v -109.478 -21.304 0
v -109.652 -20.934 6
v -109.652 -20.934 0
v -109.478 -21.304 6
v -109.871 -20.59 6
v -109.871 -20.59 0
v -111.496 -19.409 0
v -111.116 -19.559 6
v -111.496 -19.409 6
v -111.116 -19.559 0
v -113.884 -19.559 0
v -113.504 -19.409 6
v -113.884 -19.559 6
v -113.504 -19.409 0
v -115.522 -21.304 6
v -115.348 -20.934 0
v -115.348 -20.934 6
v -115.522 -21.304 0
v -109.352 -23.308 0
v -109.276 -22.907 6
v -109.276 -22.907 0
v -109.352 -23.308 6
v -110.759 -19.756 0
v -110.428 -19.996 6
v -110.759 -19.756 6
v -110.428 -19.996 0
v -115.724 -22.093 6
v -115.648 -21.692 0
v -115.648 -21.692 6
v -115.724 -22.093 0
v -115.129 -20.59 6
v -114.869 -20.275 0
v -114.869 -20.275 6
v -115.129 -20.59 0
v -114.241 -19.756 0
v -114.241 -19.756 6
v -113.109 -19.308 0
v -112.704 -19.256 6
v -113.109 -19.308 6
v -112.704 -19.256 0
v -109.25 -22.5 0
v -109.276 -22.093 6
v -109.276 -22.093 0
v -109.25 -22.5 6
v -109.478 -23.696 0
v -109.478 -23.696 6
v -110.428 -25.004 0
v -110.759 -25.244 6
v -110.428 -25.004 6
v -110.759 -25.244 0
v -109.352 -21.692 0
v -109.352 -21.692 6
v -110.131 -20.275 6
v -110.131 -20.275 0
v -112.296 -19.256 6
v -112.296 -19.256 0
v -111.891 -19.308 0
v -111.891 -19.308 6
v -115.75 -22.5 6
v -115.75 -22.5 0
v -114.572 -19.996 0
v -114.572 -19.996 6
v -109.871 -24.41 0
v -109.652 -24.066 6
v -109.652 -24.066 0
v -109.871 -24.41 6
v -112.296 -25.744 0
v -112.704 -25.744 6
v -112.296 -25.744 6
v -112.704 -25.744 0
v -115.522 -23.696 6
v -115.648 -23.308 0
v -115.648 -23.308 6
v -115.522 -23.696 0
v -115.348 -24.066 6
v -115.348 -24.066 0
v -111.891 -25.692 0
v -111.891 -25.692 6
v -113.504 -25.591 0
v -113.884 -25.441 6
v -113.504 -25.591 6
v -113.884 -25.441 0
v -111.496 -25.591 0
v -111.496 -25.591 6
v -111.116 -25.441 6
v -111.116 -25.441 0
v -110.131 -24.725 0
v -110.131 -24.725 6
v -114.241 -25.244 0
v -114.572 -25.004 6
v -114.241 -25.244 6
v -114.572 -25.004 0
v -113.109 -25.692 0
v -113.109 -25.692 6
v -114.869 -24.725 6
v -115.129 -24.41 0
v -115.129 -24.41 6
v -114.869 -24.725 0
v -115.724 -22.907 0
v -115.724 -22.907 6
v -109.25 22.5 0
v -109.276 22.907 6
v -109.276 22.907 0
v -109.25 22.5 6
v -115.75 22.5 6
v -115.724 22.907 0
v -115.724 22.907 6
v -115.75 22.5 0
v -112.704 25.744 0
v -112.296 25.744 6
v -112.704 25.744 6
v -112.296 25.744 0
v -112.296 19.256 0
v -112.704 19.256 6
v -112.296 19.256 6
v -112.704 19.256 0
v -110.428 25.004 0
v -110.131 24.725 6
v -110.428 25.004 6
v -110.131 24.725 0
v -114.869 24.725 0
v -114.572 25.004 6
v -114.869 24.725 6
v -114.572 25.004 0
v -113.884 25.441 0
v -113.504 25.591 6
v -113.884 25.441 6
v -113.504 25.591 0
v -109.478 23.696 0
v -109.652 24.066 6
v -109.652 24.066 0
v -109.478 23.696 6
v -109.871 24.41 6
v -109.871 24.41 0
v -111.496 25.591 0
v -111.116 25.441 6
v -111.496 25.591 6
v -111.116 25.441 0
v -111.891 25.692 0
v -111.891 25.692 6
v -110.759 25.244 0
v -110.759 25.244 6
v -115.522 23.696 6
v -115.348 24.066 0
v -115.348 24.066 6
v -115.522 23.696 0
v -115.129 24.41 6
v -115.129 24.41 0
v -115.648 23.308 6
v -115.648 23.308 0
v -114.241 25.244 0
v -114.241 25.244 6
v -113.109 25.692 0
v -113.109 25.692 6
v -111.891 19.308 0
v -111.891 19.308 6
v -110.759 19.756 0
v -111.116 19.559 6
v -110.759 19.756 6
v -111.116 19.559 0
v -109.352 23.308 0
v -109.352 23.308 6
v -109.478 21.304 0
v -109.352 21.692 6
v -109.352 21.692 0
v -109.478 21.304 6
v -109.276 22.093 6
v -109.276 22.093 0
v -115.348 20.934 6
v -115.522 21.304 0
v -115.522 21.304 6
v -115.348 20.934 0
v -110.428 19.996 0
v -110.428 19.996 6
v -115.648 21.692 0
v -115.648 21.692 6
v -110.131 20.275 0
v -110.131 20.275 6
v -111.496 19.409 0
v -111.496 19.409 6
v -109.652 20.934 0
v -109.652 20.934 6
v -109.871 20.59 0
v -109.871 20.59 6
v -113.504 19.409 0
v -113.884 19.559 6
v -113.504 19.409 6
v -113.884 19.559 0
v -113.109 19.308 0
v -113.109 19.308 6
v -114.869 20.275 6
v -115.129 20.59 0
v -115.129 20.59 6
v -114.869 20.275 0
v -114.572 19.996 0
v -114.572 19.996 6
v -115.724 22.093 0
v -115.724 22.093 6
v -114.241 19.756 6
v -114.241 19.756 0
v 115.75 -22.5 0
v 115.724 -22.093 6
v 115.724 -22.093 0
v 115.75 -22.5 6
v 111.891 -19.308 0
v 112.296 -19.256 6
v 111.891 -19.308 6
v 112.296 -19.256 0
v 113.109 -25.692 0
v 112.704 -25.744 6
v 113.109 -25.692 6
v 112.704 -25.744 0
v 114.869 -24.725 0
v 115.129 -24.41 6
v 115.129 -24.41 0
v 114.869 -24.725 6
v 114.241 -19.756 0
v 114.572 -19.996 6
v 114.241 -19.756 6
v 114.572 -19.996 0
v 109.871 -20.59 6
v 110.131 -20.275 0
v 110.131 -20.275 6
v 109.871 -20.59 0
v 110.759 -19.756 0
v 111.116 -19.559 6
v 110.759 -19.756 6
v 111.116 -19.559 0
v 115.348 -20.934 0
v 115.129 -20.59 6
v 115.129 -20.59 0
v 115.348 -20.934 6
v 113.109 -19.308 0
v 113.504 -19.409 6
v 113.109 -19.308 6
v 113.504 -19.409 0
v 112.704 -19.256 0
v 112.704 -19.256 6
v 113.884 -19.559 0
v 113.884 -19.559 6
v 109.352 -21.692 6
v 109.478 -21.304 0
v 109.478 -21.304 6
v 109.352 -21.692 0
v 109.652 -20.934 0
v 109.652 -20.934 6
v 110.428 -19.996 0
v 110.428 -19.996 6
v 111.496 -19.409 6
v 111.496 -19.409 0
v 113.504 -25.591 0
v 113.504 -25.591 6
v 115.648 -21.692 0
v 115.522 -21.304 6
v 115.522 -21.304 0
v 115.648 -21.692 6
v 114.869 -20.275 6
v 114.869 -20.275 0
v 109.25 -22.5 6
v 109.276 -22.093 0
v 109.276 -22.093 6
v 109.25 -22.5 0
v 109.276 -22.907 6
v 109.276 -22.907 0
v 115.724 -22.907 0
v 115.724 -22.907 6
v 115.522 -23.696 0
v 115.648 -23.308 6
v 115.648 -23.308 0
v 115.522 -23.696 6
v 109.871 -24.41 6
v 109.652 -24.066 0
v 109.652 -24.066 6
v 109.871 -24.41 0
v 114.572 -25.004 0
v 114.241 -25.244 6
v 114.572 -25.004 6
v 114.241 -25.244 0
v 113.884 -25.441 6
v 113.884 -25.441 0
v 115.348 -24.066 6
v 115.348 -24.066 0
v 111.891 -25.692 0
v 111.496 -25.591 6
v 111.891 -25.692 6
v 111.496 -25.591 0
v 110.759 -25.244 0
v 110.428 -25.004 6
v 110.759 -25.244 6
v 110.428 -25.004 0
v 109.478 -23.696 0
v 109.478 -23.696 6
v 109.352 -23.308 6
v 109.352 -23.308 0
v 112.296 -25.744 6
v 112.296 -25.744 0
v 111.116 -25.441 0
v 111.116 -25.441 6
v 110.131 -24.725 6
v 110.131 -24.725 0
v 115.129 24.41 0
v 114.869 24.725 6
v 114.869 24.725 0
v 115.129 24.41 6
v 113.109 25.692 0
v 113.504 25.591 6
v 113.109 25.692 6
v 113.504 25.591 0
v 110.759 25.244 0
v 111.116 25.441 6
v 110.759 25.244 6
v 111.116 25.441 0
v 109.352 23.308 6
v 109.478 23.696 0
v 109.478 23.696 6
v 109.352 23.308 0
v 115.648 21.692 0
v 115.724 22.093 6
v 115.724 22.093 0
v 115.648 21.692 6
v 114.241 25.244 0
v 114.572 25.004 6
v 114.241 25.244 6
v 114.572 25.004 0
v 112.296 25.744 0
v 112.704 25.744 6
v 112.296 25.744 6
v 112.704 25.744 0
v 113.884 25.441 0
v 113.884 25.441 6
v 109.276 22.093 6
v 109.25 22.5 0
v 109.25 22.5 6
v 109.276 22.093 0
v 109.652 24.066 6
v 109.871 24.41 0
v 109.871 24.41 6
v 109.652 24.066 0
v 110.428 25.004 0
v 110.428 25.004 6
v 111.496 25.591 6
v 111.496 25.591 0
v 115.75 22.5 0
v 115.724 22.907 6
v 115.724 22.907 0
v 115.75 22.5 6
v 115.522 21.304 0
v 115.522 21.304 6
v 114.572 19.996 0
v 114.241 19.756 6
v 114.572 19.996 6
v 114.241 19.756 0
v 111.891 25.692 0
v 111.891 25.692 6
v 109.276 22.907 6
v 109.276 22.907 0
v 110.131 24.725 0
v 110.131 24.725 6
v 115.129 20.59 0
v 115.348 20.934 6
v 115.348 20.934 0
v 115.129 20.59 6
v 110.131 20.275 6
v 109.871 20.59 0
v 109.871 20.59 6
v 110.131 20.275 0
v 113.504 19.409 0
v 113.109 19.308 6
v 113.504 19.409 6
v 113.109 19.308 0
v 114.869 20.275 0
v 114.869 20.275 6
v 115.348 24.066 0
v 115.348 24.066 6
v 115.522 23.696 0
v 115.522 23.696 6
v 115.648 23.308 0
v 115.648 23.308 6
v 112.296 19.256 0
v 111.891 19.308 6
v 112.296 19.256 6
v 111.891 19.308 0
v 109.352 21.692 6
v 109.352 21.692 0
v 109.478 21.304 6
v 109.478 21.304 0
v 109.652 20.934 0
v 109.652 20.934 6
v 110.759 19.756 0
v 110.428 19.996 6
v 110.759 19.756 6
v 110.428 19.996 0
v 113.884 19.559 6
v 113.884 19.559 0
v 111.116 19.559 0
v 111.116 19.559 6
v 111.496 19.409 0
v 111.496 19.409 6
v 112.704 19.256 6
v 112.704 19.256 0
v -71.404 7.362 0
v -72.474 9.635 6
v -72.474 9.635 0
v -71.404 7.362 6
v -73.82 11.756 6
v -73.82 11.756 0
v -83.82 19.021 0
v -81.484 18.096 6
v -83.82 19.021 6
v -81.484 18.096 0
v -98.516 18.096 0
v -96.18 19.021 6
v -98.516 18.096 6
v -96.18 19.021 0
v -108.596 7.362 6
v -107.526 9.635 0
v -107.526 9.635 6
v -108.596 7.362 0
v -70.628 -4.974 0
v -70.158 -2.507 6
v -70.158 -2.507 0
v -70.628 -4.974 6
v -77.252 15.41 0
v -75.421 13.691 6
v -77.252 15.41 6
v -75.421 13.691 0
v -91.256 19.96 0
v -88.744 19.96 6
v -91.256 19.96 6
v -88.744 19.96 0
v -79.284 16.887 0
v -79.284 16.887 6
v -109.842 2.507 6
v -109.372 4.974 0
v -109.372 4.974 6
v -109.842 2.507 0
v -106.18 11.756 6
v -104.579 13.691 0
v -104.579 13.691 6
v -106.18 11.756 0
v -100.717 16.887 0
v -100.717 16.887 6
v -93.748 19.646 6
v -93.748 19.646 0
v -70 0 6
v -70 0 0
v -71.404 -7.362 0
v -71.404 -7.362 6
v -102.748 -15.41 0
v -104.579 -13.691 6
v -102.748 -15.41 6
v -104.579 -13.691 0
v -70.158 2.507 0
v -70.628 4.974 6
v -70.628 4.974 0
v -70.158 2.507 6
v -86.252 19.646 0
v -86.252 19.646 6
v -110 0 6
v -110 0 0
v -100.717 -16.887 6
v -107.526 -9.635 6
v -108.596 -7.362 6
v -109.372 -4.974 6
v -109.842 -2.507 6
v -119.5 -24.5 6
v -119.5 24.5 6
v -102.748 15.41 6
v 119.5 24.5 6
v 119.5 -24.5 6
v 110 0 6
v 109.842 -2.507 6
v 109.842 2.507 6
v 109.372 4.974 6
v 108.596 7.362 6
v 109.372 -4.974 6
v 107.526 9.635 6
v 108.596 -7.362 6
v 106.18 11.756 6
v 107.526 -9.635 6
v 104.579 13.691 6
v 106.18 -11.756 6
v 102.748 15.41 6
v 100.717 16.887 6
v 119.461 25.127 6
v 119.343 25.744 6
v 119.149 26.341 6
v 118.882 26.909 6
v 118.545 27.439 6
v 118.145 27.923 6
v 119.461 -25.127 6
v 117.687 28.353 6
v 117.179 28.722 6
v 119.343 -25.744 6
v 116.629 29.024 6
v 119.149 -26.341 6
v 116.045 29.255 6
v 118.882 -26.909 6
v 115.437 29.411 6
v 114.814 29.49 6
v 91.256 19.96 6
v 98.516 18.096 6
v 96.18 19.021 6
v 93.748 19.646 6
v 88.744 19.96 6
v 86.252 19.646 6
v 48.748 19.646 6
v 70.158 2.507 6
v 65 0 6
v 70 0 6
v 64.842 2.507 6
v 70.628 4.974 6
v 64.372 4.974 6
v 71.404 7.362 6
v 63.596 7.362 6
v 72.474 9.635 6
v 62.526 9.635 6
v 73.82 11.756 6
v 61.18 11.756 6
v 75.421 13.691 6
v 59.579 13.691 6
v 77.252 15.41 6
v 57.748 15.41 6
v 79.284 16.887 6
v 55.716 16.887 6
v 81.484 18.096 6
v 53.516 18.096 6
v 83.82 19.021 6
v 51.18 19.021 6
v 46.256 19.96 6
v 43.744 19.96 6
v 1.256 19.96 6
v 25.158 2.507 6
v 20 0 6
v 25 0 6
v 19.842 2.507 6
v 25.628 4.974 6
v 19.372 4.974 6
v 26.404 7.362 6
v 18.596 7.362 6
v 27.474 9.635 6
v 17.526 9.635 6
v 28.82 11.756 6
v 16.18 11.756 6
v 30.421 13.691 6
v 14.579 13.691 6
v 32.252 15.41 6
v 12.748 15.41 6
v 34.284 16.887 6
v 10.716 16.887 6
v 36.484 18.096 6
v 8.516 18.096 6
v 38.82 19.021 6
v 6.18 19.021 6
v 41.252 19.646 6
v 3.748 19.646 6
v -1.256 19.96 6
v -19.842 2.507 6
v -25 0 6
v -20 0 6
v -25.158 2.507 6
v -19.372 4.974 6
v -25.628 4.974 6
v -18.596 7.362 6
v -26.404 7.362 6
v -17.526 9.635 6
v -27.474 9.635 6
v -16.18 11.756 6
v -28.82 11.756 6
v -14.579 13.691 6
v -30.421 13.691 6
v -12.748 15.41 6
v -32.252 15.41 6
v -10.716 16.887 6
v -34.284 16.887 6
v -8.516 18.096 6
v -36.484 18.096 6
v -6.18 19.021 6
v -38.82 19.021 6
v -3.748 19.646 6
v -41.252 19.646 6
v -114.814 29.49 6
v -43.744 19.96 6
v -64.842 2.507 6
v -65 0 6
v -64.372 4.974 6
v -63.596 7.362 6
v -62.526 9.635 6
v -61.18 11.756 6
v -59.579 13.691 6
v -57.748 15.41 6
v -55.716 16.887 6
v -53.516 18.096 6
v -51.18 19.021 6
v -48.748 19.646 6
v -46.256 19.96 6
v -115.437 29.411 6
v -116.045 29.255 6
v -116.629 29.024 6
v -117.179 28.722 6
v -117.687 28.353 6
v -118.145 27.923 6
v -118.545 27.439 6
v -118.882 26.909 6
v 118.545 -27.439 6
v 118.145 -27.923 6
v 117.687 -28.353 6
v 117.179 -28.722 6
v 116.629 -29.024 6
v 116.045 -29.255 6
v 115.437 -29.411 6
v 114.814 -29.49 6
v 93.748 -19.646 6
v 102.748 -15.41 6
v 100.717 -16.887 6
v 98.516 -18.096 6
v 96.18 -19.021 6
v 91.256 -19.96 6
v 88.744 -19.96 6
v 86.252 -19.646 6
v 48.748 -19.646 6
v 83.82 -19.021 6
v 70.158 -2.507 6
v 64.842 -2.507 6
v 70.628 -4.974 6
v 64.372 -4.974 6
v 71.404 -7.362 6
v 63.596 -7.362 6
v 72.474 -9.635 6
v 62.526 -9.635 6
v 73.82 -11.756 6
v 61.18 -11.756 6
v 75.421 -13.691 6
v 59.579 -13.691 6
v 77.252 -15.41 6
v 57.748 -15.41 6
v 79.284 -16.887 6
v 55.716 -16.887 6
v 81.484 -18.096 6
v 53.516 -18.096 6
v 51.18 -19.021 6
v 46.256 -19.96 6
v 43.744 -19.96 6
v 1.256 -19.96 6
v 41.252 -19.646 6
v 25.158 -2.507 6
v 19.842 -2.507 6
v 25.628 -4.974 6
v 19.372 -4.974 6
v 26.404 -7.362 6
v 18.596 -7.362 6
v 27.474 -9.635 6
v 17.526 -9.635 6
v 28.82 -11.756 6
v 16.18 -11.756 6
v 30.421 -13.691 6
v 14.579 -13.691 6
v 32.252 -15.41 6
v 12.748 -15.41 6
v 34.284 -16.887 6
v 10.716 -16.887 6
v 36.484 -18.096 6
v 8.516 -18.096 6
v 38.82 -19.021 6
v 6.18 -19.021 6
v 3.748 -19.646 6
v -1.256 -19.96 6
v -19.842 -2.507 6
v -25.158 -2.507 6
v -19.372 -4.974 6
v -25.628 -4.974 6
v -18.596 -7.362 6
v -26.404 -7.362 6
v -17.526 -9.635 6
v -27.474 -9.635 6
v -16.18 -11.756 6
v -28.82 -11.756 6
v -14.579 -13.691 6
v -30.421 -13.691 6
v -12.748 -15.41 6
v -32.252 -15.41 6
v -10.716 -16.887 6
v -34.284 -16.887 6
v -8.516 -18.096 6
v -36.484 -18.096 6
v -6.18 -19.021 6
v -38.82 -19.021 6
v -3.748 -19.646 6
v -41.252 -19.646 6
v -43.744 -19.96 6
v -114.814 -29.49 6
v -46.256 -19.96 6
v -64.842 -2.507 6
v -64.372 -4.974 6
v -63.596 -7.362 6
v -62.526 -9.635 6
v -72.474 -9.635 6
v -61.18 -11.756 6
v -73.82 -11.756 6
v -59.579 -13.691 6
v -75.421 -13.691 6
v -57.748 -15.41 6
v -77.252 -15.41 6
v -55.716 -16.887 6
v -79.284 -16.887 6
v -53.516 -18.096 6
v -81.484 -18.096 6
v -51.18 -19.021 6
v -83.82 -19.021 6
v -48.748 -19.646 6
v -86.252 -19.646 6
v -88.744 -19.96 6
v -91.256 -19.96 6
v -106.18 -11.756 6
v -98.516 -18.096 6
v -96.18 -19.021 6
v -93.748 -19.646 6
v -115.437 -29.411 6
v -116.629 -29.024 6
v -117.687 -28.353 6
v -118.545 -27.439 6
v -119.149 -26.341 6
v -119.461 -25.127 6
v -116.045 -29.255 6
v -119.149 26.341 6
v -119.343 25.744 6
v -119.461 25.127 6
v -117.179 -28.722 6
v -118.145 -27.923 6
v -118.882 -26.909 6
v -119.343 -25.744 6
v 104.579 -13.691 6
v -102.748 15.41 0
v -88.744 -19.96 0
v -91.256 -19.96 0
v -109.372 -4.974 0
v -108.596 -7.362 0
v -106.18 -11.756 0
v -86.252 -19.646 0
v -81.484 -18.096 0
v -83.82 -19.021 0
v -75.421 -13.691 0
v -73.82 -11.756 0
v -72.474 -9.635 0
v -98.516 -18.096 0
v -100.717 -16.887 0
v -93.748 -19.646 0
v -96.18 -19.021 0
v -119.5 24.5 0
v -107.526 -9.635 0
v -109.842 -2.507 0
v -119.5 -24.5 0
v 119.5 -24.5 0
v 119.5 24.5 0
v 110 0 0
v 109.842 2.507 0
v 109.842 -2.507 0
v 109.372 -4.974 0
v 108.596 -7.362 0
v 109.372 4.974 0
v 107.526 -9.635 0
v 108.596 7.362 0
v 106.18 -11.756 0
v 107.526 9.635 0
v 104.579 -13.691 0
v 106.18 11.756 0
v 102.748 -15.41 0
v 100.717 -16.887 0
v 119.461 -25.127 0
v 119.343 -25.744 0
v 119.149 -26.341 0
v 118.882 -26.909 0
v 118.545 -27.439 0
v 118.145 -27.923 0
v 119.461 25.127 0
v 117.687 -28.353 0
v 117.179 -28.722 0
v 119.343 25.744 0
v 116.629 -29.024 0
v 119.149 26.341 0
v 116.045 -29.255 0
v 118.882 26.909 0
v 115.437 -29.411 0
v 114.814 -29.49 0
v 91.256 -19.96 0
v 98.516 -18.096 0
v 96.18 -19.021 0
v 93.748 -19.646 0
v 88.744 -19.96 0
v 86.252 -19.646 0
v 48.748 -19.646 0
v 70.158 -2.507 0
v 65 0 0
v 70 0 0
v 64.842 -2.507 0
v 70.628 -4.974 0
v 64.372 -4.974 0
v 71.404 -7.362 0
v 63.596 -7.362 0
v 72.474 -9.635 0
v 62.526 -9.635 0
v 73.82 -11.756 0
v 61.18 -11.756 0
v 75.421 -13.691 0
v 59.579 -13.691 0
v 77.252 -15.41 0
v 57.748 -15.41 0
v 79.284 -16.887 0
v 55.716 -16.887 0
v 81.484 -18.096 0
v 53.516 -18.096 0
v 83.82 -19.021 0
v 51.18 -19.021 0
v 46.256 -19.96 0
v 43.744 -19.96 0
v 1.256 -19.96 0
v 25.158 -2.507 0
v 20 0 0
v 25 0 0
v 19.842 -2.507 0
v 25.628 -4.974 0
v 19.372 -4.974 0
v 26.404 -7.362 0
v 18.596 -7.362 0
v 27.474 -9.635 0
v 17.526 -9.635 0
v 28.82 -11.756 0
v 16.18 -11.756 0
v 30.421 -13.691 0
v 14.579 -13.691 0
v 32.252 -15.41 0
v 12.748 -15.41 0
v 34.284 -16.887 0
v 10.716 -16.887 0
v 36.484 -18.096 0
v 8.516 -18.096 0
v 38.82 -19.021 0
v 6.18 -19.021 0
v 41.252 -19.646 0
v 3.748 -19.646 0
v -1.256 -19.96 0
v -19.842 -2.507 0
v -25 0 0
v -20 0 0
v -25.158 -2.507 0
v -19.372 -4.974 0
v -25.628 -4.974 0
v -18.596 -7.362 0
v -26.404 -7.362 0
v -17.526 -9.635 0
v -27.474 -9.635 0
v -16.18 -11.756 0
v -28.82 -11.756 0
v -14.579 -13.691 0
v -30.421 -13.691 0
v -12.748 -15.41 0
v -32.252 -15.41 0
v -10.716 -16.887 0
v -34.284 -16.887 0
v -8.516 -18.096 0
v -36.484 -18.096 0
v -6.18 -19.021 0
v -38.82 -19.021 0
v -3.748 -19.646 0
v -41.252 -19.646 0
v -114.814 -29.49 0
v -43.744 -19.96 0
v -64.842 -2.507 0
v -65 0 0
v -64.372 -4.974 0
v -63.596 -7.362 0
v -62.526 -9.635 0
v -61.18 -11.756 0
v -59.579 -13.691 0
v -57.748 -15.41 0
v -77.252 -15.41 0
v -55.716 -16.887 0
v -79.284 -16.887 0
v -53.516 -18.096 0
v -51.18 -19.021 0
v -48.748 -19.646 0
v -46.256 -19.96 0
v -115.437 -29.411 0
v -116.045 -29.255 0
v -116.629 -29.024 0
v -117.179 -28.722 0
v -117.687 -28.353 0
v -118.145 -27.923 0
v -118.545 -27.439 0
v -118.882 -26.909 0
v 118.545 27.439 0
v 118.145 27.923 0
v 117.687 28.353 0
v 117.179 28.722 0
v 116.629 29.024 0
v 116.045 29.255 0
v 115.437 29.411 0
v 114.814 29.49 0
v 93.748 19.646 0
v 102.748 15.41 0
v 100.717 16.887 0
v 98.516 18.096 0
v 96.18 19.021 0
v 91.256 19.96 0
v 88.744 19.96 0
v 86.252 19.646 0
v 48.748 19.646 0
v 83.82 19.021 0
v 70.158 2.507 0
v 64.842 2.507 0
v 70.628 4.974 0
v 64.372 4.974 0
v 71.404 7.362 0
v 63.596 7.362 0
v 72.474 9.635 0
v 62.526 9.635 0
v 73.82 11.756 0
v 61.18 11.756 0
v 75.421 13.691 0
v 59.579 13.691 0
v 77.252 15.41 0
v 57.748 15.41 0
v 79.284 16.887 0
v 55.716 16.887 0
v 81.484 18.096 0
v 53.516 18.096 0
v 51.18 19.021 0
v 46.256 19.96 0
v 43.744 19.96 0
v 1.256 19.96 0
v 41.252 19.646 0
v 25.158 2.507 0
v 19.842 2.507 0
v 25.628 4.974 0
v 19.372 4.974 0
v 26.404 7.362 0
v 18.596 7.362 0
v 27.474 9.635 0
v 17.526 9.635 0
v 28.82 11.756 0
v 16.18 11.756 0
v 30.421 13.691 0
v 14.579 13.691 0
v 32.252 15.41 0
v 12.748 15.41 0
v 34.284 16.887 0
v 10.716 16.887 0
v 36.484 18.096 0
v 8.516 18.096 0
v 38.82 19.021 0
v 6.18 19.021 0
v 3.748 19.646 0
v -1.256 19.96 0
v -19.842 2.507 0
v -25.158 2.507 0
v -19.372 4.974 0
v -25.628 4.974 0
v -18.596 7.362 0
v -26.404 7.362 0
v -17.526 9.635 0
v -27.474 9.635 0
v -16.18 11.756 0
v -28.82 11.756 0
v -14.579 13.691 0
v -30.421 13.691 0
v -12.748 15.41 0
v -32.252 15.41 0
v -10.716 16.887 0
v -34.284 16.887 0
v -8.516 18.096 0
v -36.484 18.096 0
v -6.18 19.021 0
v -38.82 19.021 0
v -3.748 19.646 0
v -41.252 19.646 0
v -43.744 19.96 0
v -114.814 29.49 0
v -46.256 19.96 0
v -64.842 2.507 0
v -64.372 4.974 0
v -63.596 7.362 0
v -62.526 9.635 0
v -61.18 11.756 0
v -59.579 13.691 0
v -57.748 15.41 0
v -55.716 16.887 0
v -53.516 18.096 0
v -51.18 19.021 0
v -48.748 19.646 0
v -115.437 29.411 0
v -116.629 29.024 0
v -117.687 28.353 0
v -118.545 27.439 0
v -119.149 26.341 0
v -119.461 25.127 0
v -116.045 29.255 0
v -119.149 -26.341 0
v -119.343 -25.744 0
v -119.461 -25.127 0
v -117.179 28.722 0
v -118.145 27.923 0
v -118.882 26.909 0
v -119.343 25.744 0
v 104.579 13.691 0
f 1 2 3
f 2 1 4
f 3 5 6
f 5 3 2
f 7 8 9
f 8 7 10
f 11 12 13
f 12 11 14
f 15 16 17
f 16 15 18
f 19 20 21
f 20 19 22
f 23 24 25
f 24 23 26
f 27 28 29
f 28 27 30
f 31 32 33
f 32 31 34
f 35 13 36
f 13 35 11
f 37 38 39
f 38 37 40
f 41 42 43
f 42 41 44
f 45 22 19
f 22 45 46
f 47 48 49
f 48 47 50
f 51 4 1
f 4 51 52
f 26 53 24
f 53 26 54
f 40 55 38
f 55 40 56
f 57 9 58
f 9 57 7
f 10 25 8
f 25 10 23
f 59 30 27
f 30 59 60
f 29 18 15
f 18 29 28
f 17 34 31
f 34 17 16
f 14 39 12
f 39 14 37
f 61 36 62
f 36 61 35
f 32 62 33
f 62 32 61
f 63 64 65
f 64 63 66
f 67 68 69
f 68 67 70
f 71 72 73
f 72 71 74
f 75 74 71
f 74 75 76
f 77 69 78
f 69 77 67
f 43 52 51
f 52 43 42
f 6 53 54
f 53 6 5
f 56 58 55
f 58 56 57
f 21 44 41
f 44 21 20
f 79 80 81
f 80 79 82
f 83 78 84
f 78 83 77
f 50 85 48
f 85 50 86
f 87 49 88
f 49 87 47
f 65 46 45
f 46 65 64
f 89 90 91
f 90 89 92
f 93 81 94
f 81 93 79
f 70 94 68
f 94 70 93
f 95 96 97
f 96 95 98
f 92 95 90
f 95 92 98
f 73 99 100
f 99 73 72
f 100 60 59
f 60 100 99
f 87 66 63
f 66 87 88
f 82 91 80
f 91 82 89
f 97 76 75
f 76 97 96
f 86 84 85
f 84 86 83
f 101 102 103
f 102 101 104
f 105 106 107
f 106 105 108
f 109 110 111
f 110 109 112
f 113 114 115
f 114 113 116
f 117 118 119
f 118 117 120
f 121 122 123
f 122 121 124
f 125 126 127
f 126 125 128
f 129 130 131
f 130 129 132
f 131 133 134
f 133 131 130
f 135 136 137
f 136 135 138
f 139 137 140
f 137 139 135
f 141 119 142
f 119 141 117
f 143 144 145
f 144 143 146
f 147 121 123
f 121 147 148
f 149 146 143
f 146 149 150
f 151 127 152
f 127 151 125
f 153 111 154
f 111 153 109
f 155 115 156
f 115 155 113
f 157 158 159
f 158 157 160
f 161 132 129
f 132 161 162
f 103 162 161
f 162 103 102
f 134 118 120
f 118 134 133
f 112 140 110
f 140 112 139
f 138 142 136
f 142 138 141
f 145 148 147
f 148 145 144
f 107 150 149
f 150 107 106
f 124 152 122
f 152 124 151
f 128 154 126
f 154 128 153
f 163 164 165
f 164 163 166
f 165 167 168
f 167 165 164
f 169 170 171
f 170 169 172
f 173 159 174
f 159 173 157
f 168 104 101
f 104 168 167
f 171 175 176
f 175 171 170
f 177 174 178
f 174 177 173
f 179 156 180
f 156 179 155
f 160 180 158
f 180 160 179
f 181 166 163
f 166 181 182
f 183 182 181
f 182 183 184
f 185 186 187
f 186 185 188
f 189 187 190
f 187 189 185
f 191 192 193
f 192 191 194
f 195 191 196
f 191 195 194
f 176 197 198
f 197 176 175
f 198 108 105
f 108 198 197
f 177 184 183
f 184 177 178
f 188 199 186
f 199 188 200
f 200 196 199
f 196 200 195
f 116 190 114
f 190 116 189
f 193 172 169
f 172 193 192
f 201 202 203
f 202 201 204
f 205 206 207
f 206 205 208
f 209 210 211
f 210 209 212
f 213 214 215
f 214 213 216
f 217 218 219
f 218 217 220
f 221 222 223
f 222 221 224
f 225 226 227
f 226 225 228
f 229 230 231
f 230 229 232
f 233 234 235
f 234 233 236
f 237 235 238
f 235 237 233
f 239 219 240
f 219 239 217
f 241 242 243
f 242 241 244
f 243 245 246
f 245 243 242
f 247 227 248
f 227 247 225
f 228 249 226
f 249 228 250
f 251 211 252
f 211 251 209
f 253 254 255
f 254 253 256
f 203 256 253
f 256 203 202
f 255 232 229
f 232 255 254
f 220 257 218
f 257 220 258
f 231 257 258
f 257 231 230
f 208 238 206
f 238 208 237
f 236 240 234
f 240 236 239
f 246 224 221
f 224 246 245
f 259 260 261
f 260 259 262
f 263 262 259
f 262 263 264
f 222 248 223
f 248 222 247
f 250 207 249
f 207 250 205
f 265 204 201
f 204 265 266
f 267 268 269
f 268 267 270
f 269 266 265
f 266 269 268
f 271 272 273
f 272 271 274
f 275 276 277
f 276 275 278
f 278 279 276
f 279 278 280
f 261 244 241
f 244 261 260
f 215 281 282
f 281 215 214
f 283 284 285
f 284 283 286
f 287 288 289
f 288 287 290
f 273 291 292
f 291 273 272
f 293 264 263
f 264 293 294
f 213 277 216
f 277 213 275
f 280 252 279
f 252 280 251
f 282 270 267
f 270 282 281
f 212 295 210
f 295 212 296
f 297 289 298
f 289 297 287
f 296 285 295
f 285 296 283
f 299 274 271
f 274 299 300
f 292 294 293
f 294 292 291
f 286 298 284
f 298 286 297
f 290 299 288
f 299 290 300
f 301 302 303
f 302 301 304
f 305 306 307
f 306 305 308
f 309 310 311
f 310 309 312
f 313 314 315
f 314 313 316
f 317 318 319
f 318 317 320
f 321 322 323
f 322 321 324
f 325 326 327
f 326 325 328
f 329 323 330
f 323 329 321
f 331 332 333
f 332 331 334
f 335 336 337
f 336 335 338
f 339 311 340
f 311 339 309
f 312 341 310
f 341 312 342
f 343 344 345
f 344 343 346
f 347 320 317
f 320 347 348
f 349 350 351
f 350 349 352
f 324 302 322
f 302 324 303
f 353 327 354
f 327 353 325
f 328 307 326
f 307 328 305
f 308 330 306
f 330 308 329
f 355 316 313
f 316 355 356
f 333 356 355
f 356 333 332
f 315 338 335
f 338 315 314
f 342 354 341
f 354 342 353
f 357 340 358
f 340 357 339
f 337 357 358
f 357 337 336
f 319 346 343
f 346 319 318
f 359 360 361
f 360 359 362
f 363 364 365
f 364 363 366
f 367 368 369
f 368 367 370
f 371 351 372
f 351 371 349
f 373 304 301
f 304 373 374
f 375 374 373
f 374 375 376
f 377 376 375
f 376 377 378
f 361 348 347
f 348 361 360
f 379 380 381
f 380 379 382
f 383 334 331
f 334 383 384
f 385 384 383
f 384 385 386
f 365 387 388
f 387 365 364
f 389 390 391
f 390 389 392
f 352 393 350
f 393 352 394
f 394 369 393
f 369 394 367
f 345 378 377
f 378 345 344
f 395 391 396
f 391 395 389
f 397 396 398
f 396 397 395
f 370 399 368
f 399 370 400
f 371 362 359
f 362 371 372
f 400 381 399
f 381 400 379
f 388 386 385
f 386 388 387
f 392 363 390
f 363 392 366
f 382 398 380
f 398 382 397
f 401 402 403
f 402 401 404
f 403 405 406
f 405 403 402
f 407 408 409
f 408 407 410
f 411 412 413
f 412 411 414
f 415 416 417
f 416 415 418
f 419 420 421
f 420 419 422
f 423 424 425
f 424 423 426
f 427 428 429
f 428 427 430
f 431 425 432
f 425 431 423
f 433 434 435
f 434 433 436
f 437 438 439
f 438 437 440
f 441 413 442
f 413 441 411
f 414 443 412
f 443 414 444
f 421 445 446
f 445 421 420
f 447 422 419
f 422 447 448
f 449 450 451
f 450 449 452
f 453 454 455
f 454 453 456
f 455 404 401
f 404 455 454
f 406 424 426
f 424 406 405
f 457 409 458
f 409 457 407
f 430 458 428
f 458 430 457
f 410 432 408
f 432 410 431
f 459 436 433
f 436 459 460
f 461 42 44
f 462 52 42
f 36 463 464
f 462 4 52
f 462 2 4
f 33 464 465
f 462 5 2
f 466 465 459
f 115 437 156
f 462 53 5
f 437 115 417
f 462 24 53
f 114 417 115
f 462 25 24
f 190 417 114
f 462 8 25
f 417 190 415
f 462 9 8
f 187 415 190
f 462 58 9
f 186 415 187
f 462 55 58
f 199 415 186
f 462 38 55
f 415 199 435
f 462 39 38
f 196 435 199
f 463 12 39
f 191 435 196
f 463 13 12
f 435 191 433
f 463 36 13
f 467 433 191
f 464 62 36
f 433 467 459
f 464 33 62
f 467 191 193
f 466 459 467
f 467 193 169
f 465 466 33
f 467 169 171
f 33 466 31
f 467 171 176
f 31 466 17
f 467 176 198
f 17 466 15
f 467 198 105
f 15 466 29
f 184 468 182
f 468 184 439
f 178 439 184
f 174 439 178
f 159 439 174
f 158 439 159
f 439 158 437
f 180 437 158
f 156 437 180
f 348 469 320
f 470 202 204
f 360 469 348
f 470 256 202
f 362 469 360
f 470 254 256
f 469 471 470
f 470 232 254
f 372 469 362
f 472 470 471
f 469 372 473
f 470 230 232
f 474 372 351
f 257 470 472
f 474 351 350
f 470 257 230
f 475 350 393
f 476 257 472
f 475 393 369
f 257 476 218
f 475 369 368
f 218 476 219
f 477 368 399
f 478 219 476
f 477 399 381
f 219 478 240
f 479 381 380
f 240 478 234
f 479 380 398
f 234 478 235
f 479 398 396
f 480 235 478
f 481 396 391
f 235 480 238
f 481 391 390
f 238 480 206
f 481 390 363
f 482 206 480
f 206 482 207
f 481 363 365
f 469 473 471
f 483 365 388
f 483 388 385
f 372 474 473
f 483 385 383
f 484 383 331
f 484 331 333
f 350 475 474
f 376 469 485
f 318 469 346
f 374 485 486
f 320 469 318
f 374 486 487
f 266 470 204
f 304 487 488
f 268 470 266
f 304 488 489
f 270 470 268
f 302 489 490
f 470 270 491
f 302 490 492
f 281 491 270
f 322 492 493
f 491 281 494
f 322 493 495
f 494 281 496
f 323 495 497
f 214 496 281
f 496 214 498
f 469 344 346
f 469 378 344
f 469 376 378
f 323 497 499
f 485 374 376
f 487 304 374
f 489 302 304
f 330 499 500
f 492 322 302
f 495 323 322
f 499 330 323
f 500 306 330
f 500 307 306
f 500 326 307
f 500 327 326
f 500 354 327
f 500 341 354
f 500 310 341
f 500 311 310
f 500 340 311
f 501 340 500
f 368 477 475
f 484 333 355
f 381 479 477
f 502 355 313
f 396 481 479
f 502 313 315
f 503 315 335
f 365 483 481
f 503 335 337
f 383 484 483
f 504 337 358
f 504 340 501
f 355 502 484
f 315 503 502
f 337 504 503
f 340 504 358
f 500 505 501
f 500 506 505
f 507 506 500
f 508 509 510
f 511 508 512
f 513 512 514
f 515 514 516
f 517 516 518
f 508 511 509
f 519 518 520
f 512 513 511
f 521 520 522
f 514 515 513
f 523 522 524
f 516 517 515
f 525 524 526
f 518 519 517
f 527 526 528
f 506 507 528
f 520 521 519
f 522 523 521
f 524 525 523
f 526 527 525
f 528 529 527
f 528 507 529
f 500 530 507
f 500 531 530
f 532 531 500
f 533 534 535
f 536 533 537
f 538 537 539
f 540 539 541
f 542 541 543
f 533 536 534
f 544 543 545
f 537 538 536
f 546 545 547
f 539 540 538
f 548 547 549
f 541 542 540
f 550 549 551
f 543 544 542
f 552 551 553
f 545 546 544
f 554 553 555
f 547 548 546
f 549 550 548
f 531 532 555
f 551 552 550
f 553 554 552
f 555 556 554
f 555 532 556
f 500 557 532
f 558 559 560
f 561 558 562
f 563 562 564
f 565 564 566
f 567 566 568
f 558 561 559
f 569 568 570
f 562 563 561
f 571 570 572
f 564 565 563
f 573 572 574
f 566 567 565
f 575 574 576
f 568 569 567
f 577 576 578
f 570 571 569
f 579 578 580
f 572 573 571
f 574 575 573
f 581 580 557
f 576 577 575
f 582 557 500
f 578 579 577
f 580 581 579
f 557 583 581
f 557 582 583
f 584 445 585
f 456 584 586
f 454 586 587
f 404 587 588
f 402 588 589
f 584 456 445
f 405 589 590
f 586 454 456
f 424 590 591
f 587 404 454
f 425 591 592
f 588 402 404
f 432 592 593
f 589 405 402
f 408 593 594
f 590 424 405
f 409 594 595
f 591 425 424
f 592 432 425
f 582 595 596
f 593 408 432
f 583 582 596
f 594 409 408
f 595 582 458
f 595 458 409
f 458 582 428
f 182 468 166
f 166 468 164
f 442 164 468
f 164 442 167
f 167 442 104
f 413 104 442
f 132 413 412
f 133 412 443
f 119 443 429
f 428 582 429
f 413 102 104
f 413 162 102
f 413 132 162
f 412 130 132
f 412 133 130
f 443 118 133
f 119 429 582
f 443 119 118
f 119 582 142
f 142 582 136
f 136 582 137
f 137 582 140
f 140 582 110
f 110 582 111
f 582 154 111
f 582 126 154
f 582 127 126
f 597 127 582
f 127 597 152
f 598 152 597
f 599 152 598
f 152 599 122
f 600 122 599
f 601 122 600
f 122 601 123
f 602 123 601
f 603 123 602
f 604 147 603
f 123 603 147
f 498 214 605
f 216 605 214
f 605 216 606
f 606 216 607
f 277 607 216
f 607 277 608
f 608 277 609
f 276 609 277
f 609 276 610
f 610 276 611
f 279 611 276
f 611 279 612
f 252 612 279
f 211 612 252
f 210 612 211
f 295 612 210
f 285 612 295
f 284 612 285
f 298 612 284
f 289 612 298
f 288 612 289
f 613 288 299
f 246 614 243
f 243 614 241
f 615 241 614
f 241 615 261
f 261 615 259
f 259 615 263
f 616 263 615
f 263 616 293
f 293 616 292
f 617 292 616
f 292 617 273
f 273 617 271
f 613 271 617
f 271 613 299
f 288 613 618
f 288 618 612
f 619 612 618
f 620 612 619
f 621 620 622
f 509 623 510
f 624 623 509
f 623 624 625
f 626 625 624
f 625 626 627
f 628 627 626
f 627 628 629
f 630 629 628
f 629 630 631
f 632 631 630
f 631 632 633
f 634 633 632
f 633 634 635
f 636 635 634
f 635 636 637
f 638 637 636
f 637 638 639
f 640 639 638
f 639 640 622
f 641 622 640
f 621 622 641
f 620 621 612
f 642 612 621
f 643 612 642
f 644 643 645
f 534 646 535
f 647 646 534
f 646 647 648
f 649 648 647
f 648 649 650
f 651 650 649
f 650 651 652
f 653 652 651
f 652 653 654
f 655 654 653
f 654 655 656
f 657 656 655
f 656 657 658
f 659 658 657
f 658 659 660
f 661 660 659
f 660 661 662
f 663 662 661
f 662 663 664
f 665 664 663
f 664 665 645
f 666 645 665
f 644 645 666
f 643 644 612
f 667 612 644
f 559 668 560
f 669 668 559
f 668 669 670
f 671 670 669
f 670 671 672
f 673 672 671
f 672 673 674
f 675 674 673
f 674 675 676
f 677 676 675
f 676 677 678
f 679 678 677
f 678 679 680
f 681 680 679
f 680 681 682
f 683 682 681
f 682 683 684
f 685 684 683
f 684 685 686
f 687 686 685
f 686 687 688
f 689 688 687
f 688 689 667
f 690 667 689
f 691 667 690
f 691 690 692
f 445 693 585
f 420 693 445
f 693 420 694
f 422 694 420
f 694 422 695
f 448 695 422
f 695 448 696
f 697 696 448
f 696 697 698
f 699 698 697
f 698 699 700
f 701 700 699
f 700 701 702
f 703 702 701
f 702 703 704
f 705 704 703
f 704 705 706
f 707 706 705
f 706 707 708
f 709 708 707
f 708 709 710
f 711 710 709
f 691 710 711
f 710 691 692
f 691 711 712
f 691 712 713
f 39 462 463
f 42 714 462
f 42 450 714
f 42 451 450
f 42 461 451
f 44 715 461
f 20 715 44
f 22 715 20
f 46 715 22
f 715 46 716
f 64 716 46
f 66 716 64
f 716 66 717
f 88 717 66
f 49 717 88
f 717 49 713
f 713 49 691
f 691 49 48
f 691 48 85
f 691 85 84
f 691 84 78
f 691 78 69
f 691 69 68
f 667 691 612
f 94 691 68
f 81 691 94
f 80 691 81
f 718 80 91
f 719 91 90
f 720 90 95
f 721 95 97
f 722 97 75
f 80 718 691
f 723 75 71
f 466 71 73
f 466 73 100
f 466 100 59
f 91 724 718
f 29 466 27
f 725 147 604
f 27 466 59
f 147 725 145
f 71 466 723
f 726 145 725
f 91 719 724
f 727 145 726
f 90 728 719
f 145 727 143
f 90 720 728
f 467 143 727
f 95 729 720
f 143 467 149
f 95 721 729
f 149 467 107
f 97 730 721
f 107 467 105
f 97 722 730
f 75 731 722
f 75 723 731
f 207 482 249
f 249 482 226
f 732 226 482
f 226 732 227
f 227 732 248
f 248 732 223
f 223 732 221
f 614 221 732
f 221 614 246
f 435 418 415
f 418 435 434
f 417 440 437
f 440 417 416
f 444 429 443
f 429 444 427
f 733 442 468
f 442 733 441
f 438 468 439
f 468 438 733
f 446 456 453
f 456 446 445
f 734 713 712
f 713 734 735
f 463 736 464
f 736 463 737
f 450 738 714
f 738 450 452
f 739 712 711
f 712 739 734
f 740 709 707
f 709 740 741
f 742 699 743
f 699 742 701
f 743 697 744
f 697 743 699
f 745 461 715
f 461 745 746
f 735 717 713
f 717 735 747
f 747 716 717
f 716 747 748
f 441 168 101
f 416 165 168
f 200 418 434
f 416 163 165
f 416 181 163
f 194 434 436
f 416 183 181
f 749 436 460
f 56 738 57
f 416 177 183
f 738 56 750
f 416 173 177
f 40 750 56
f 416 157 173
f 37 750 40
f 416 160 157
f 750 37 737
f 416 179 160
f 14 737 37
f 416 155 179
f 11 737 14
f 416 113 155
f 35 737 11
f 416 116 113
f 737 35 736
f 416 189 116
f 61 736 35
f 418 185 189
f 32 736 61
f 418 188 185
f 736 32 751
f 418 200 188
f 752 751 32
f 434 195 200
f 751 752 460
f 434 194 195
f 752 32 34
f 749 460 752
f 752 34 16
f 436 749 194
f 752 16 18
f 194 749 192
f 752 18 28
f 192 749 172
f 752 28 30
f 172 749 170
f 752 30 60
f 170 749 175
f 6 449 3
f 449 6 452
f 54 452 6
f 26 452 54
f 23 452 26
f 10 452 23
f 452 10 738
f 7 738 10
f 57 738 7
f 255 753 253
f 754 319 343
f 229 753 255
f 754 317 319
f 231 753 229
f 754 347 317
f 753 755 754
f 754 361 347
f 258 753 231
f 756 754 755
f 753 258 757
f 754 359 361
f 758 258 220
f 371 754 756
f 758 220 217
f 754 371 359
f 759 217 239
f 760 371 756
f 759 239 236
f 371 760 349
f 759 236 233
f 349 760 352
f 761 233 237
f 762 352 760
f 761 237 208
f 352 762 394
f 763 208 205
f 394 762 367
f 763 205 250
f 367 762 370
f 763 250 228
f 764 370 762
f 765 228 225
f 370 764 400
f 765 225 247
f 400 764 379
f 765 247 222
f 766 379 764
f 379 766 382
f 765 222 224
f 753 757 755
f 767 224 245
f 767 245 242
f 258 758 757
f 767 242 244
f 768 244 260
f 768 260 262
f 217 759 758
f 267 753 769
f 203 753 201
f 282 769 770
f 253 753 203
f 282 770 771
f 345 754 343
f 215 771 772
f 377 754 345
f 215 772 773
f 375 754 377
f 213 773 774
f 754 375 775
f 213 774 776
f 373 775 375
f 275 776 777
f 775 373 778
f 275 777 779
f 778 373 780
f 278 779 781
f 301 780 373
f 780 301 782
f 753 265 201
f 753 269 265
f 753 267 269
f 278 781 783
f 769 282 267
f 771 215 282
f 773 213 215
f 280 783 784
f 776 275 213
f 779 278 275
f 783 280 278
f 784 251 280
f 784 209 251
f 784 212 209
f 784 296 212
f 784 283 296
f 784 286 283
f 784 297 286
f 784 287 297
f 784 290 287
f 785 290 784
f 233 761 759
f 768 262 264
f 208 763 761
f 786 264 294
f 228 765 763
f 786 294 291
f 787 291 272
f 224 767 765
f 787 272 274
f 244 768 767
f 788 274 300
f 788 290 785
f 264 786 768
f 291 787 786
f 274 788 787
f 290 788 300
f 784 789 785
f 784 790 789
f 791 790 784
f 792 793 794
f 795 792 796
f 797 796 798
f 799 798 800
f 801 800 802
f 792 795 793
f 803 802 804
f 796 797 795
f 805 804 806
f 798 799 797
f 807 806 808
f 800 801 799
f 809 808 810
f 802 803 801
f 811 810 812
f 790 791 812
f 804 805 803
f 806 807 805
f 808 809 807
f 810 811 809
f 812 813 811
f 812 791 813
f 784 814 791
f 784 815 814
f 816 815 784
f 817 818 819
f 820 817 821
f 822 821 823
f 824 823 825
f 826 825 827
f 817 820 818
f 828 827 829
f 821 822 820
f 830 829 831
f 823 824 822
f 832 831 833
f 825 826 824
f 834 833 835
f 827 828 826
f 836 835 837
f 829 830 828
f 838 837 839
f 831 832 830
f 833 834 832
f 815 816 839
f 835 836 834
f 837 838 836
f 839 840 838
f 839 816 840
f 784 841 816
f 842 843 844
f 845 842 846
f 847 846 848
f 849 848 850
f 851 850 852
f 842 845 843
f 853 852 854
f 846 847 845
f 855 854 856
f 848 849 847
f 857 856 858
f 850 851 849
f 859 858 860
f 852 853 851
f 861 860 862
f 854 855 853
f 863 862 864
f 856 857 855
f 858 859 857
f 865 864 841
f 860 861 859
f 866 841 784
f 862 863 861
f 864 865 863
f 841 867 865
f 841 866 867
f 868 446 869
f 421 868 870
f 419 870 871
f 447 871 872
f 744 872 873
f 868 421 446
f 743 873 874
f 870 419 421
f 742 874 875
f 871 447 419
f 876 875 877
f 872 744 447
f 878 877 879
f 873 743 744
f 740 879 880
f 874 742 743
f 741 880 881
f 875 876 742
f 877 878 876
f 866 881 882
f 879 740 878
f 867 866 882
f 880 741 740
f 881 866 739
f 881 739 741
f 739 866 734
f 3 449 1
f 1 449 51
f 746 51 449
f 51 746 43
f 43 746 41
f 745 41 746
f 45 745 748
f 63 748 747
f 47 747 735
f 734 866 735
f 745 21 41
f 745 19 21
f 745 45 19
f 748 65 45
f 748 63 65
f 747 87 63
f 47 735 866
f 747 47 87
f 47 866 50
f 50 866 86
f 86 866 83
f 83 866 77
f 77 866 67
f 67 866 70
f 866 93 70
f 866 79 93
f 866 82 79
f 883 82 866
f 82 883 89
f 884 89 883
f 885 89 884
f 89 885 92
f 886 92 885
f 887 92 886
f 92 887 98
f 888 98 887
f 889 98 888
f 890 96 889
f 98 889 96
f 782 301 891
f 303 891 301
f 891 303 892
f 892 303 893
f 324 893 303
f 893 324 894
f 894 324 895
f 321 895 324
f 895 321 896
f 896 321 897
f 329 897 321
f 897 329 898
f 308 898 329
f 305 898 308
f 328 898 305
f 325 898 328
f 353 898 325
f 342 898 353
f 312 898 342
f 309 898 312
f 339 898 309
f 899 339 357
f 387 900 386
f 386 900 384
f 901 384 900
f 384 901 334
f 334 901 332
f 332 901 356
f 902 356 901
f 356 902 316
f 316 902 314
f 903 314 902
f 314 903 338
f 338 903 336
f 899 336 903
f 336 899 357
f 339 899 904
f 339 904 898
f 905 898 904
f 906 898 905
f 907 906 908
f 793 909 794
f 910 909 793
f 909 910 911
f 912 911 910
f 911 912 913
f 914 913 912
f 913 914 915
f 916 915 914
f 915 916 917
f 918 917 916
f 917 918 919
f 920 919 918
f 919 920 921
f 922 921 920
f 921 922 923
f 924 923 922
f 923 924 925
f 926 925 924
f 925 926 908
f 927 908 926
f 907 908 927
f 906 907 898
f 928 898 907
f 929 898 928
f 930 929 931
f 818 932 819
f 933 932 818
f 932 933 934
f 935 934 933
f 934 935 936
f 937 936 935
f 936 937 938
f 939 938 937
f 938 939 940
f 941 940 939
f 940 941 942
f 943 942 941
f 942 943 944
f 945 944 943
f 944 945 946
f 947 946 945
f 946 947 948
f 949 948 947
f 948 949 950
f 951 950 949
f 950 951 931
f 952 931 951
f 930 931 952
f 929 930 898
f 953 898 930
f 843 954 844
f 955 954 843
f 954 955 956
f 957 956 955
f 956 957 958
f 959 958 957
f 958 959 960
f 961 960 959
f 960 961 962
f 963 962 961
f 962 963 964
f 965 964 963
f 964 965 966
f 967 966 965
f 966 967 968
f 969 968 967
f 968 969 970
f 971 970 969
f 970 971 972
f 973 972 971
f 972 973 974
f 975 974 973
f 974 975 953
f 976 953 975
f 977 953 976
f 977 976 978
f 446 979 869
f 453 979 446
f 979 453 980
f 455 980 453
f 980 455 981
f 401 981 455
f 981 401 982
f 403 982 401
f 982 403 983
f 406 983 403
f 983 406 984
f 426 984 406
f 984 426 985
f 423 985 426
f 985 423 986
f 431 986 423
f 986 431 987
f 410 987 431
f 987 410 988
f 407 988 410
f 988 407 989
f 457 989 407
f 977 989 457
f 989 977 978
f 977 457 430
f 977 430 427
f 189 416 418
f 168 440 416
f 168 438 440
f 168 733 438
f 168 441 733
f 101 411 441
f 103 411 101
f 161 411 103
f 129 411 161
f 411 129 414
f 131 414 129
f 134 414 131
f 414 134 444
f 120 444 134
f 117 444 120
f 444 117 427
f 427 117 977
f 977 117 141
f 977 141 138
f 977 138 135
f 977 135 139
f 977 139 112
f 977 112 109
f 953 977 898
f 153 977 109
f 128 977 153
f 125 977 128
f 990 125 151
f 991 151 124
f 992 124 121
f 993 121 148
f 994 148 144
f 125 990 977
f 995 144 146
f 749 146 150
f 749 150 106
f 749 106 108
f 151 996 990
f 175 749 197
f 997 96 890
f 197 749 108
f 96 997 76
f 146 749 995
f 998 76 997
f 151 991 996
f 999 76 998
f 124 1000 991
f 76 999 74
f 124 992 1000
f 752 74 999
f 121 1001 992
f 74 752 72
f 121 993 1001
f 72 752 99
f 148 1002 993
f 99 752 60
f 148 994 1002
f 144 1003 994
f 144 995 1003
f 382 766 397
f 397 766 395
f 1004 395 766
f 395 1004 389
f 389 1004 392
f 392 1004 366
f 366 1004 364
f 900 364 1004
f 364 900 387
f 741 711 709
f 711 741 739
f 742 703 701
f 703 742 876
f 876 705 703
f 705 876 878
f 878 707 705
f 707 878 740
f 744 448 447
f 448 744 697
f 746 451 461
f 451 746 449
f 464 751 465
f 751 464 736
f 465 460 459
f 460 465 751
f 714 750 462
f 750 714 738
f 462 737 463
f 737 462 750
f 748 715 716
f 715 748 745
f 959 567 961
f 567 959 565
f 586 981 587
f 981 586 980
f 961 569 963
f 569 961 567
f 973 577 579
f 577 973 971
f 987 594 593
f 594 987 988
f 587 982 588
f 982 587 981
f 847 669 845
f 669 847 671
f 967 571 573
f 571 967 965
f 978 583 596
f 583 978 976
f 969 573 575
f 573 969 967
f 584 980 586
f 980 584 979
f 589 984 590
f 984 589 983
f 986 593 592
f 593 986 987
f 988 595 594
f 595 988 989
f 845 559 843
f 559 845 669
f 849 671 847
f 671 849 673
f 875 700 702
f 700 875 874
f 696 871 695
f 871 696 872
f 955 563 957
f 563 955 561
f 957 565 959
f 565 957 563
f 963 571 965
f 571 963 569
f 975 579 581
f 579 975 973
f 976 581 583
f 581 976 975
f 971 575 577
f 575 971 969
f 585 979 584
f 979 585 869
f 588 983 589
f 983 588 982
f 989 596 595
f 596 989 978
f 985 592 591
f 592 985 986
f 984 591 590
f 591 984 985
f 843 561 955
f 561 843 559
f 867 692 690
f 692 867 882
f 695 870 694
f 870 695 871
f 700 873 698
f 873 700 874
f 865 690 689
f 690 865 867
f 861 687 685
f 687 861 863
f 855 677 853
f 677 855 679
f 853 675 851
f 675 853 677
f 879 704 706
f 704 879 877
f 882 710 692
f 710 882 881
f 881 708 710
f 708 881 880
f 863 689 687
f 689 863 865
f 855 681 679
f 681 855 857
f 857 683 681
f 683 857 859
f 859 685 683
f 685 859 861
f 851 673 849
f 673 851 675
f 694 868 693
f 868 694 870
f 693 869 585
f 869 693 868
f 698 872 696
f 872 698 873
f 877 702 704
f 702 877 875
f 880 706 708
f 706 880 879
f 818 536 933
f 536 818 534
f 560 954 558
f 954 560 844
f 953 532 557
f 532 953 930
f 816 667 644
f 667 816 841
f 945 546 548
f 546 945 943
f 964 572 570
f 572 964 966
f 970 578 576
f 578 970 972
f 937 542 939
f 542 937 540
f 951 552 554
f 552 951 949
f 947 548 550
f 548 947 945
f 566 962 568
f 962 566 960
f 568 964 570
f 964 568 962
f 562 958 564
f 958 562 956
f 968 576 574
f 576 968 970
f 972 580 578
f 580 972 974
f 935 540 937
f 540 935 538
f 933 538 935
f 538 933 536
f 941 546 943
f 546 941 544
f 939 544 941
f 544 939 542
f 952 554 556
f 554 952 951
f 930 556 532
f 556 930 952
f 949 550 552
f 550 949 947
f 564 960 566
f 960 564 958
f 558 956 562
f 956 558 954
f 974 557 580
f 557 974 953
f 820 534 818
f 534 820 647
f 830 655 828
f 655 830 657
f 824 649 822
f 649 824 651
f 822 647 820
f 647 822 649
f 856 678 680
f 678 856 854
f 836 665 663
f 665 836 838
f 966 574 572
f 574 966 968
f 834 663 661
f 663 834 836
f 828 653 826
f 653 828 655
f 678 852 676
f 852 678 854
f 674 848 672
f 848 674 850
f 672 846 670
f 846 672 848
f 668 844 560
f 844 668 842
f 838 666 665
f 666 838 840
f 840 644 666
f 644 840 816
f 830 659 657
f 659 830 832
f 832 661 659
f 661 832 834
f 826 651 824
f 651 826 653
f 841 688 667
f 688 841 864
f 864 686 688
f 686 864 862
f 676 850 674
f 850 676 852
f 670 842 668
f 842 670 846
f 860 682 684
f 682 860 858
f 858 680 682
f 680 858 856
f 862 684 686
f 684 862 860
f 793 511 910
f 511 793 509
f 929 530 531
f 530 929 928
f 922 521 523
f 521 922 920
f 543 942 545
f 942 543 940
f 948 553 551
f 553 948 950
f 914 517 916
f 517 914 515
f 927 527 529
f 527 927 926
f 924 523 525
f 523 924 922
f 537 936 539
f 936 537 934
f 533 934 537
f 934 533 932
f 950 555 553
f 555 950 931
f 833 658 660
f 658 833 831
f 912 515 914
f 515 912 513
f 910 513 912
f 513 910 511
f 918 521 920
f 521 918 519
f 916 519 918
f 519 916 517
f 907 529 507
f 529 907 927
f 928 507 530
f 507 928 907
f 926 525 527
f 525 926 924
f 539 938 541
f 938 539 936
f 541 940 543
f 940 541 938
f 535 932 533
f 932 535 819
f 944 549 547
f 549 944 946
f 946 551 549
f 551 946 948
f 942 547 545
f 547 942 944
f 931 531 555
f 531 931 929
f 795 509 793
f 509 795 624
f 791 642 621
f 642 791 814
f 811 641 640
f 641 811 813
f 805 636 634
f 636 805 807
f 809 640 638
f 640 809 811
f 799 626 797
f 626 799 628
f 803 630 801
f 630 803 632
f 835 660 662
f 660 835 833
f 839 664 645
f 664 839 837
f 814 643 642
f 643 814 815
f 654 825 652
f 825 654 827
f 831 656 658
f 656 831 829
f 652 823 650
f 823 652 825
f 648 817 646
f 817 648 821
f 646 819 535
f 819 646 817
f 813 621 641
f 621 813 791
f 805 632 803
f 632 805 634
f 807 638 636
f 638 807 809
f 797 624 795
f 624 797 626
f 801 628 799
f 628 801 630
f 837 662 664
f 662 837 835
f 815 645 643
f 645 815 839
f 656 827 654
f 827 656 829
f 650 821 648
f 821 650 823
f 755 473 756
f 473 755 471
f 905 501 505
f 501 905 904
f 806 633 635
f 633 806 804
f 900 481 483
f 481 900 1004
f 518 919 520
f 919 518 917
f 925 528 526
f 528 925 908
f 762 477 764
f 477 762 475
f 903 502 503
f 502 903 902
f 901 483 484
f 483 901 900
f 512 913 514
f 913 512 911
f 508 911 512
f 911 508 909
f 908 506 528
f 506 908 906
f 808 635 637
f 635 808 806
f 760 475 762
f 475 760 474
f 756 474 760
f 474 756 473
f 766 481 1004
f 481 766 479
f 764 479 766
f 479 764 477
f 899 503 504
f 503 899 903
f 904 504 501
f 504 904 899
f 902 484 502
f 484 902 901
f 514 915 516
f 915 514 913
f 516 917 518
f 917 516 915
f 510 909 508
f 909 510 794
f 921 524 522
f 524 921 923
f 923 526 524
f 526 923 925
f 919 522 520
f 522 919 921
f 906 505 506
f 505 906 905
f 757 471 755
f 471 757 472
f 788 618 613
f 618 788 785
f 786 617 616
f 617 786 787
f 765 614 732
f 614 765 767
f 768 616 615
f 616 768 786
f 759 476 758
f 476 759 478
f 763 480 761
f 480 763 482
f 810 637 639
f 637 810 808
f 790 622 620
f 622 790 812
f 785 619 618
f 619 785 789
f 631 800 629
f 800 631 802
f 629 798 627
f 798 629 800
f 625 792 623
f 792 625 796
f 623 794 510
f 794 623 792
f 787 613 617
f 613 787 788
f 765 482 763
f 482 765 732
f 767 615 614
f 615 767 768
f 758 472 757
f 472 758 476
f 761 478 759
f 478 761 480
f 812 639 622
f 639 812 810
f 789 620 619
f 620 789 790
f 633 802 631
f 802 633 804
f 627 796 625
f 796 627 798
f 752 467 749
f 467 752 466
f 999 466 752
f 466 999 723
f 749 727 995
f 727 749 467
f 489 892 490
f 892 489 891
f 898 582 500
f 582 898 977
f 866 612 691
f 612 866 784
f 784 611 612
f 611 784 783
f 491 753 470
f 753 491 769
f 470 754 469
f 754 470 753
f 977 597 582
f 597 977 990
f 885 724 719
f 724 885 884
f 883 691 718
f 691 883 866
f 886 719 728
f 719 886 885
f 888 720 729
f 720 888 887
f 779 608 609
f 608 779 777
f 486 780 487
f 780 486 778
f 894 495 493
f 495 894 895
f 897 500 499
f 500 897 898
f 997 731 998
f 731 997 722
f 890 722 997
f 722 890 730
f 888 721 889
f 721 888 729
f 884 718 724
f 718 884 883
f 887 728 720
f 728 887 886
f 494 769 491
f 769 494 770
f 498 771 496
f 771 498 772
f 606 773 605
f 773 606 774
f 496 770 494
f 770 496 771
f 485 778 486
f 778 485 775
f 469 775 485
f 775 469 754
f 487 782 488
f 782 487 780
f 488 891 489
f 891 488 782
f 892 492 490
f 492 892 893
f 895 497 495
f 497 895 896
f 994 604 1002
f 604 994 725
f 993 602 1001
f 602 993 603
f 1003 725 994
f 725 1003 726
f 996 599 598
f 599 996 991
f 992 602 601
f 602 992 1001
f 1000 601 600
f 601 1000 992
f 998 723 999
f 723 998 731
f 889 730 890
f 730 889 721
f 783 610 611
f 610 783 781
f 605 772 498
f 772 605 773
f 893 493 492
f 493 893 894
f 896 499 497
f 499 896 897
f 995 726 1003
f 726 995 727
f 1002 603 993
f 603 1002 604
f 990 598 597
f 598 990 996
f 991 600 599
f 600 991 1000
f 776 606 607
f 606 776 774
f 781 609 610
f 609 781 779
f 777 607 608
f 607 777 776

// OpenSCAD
$fn = 50;


difference() {
	union() {
		hull() {
			translate(v = [-114.5000000000, 24.5000000000, 0]) {
				cylinder(h = 6, r = 5);
			}
			translate(v = [114.5000000000, 24.5000000000, 0]) {
				cylinder(h = 6, r = 5);
			}
			translate(v = [-114.5000000000, -24.5000000000, 0]) {
				cylinder(h = 6, r = 5);
			}
			translate(v = [114.5000000000, -24.5000000000, 0]) {
				cylinder(h = 6, r = 5);
			}
		}
	}
	union() {
		#translate(v = [-112.5000000000, -22.5000000000, -100.0000000000]) {
			cylinder(h = 200, r = 3.2500000000);
		}
		#translate(v = [-112.5000000000, 22.5000000000, -100.0000000000]) {
			cylinder(h = 200, r = 3.2500000000);
		}
		#translate(v = [112.5000000000, -22.5000000000, -100.0000000000]) {
			cylinder(h = 200, r = 3.2500000000);
		}
		#translate(v = [112.5000000000, 22.5000000000, -100.0000000000]) {
			cylinder(h = 200, r = 3.2500000000);
		}
		#translate(v = [-90.0000000000, 0, 0]) {
			cylinder(h = 6, r = 20.0000000000);
		}
		#translate(v = [-45.0000000000, 0, 0]) {
			cylinder(h = 6, r = 20.0000000000);
		}
		#cylinder(h = 6, r = 20.0000000000);
		#translate(v = [45.0000000000, 0, 0]) {
			cylinder(h = 6, r = 20.0000000000);
		}
		#translate(v = [90.0000000000, 0, 0]) {
			cylinder(h = 6, r = 20.0000000000);
		}
	}
}
